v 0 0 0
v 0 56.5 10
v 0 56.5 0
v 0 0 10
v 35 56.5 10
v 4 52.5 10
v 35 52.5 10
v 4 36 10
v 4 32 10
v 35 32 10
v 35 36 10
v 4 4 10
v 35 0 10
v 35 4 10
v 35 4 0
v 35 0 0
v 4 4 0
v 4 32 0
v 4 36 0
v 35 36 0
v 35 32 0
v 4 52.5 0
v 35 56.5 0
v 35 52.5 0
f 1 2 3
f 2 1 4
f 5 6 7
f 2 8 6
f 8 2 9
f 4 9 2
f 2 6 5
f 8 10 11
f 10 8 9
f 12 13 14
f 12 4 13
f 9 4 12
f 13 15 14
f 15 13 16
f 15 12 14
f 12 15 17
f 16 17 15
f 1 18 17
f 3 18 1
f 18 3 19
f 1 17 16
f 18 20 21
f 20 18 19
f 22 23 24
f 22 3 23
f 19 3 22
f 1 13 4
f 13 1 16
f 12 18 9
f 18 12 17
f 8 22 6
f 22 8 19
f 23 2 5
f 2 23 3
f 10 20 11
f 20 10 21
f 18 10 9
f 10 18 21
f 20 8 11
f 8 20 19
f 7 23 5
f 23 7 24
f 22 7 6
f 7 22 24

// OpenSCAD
//
// USB Hub Clip
//
// Clip a USB hub to a table.  
// The printing is rotated from the installed position so
// the axis naming is confusing. 
//

hub_y  = 15;        // Hub depth.
hub_z  = 16.5;      // Hub vertical.
thick =  4;         // thickness of clip
width = 10;         // width of clip

table = 28;         // table thickness


// Under the table.
cube([width+hub_y+width, thick, width],center=false);

// Up the back.
cube([thick, thick+table+thick+hub_z+thick, width],center=false);

// Under the hub.
translate([0,thick+table,0]) 
    cube([width+hub_y+width, thick, width],center=false);

// Over the hub.
translate([0,thick+table+thick+hub_z,0]) 
    cube([width+hub_y+width, thick, width],center=false);
       
